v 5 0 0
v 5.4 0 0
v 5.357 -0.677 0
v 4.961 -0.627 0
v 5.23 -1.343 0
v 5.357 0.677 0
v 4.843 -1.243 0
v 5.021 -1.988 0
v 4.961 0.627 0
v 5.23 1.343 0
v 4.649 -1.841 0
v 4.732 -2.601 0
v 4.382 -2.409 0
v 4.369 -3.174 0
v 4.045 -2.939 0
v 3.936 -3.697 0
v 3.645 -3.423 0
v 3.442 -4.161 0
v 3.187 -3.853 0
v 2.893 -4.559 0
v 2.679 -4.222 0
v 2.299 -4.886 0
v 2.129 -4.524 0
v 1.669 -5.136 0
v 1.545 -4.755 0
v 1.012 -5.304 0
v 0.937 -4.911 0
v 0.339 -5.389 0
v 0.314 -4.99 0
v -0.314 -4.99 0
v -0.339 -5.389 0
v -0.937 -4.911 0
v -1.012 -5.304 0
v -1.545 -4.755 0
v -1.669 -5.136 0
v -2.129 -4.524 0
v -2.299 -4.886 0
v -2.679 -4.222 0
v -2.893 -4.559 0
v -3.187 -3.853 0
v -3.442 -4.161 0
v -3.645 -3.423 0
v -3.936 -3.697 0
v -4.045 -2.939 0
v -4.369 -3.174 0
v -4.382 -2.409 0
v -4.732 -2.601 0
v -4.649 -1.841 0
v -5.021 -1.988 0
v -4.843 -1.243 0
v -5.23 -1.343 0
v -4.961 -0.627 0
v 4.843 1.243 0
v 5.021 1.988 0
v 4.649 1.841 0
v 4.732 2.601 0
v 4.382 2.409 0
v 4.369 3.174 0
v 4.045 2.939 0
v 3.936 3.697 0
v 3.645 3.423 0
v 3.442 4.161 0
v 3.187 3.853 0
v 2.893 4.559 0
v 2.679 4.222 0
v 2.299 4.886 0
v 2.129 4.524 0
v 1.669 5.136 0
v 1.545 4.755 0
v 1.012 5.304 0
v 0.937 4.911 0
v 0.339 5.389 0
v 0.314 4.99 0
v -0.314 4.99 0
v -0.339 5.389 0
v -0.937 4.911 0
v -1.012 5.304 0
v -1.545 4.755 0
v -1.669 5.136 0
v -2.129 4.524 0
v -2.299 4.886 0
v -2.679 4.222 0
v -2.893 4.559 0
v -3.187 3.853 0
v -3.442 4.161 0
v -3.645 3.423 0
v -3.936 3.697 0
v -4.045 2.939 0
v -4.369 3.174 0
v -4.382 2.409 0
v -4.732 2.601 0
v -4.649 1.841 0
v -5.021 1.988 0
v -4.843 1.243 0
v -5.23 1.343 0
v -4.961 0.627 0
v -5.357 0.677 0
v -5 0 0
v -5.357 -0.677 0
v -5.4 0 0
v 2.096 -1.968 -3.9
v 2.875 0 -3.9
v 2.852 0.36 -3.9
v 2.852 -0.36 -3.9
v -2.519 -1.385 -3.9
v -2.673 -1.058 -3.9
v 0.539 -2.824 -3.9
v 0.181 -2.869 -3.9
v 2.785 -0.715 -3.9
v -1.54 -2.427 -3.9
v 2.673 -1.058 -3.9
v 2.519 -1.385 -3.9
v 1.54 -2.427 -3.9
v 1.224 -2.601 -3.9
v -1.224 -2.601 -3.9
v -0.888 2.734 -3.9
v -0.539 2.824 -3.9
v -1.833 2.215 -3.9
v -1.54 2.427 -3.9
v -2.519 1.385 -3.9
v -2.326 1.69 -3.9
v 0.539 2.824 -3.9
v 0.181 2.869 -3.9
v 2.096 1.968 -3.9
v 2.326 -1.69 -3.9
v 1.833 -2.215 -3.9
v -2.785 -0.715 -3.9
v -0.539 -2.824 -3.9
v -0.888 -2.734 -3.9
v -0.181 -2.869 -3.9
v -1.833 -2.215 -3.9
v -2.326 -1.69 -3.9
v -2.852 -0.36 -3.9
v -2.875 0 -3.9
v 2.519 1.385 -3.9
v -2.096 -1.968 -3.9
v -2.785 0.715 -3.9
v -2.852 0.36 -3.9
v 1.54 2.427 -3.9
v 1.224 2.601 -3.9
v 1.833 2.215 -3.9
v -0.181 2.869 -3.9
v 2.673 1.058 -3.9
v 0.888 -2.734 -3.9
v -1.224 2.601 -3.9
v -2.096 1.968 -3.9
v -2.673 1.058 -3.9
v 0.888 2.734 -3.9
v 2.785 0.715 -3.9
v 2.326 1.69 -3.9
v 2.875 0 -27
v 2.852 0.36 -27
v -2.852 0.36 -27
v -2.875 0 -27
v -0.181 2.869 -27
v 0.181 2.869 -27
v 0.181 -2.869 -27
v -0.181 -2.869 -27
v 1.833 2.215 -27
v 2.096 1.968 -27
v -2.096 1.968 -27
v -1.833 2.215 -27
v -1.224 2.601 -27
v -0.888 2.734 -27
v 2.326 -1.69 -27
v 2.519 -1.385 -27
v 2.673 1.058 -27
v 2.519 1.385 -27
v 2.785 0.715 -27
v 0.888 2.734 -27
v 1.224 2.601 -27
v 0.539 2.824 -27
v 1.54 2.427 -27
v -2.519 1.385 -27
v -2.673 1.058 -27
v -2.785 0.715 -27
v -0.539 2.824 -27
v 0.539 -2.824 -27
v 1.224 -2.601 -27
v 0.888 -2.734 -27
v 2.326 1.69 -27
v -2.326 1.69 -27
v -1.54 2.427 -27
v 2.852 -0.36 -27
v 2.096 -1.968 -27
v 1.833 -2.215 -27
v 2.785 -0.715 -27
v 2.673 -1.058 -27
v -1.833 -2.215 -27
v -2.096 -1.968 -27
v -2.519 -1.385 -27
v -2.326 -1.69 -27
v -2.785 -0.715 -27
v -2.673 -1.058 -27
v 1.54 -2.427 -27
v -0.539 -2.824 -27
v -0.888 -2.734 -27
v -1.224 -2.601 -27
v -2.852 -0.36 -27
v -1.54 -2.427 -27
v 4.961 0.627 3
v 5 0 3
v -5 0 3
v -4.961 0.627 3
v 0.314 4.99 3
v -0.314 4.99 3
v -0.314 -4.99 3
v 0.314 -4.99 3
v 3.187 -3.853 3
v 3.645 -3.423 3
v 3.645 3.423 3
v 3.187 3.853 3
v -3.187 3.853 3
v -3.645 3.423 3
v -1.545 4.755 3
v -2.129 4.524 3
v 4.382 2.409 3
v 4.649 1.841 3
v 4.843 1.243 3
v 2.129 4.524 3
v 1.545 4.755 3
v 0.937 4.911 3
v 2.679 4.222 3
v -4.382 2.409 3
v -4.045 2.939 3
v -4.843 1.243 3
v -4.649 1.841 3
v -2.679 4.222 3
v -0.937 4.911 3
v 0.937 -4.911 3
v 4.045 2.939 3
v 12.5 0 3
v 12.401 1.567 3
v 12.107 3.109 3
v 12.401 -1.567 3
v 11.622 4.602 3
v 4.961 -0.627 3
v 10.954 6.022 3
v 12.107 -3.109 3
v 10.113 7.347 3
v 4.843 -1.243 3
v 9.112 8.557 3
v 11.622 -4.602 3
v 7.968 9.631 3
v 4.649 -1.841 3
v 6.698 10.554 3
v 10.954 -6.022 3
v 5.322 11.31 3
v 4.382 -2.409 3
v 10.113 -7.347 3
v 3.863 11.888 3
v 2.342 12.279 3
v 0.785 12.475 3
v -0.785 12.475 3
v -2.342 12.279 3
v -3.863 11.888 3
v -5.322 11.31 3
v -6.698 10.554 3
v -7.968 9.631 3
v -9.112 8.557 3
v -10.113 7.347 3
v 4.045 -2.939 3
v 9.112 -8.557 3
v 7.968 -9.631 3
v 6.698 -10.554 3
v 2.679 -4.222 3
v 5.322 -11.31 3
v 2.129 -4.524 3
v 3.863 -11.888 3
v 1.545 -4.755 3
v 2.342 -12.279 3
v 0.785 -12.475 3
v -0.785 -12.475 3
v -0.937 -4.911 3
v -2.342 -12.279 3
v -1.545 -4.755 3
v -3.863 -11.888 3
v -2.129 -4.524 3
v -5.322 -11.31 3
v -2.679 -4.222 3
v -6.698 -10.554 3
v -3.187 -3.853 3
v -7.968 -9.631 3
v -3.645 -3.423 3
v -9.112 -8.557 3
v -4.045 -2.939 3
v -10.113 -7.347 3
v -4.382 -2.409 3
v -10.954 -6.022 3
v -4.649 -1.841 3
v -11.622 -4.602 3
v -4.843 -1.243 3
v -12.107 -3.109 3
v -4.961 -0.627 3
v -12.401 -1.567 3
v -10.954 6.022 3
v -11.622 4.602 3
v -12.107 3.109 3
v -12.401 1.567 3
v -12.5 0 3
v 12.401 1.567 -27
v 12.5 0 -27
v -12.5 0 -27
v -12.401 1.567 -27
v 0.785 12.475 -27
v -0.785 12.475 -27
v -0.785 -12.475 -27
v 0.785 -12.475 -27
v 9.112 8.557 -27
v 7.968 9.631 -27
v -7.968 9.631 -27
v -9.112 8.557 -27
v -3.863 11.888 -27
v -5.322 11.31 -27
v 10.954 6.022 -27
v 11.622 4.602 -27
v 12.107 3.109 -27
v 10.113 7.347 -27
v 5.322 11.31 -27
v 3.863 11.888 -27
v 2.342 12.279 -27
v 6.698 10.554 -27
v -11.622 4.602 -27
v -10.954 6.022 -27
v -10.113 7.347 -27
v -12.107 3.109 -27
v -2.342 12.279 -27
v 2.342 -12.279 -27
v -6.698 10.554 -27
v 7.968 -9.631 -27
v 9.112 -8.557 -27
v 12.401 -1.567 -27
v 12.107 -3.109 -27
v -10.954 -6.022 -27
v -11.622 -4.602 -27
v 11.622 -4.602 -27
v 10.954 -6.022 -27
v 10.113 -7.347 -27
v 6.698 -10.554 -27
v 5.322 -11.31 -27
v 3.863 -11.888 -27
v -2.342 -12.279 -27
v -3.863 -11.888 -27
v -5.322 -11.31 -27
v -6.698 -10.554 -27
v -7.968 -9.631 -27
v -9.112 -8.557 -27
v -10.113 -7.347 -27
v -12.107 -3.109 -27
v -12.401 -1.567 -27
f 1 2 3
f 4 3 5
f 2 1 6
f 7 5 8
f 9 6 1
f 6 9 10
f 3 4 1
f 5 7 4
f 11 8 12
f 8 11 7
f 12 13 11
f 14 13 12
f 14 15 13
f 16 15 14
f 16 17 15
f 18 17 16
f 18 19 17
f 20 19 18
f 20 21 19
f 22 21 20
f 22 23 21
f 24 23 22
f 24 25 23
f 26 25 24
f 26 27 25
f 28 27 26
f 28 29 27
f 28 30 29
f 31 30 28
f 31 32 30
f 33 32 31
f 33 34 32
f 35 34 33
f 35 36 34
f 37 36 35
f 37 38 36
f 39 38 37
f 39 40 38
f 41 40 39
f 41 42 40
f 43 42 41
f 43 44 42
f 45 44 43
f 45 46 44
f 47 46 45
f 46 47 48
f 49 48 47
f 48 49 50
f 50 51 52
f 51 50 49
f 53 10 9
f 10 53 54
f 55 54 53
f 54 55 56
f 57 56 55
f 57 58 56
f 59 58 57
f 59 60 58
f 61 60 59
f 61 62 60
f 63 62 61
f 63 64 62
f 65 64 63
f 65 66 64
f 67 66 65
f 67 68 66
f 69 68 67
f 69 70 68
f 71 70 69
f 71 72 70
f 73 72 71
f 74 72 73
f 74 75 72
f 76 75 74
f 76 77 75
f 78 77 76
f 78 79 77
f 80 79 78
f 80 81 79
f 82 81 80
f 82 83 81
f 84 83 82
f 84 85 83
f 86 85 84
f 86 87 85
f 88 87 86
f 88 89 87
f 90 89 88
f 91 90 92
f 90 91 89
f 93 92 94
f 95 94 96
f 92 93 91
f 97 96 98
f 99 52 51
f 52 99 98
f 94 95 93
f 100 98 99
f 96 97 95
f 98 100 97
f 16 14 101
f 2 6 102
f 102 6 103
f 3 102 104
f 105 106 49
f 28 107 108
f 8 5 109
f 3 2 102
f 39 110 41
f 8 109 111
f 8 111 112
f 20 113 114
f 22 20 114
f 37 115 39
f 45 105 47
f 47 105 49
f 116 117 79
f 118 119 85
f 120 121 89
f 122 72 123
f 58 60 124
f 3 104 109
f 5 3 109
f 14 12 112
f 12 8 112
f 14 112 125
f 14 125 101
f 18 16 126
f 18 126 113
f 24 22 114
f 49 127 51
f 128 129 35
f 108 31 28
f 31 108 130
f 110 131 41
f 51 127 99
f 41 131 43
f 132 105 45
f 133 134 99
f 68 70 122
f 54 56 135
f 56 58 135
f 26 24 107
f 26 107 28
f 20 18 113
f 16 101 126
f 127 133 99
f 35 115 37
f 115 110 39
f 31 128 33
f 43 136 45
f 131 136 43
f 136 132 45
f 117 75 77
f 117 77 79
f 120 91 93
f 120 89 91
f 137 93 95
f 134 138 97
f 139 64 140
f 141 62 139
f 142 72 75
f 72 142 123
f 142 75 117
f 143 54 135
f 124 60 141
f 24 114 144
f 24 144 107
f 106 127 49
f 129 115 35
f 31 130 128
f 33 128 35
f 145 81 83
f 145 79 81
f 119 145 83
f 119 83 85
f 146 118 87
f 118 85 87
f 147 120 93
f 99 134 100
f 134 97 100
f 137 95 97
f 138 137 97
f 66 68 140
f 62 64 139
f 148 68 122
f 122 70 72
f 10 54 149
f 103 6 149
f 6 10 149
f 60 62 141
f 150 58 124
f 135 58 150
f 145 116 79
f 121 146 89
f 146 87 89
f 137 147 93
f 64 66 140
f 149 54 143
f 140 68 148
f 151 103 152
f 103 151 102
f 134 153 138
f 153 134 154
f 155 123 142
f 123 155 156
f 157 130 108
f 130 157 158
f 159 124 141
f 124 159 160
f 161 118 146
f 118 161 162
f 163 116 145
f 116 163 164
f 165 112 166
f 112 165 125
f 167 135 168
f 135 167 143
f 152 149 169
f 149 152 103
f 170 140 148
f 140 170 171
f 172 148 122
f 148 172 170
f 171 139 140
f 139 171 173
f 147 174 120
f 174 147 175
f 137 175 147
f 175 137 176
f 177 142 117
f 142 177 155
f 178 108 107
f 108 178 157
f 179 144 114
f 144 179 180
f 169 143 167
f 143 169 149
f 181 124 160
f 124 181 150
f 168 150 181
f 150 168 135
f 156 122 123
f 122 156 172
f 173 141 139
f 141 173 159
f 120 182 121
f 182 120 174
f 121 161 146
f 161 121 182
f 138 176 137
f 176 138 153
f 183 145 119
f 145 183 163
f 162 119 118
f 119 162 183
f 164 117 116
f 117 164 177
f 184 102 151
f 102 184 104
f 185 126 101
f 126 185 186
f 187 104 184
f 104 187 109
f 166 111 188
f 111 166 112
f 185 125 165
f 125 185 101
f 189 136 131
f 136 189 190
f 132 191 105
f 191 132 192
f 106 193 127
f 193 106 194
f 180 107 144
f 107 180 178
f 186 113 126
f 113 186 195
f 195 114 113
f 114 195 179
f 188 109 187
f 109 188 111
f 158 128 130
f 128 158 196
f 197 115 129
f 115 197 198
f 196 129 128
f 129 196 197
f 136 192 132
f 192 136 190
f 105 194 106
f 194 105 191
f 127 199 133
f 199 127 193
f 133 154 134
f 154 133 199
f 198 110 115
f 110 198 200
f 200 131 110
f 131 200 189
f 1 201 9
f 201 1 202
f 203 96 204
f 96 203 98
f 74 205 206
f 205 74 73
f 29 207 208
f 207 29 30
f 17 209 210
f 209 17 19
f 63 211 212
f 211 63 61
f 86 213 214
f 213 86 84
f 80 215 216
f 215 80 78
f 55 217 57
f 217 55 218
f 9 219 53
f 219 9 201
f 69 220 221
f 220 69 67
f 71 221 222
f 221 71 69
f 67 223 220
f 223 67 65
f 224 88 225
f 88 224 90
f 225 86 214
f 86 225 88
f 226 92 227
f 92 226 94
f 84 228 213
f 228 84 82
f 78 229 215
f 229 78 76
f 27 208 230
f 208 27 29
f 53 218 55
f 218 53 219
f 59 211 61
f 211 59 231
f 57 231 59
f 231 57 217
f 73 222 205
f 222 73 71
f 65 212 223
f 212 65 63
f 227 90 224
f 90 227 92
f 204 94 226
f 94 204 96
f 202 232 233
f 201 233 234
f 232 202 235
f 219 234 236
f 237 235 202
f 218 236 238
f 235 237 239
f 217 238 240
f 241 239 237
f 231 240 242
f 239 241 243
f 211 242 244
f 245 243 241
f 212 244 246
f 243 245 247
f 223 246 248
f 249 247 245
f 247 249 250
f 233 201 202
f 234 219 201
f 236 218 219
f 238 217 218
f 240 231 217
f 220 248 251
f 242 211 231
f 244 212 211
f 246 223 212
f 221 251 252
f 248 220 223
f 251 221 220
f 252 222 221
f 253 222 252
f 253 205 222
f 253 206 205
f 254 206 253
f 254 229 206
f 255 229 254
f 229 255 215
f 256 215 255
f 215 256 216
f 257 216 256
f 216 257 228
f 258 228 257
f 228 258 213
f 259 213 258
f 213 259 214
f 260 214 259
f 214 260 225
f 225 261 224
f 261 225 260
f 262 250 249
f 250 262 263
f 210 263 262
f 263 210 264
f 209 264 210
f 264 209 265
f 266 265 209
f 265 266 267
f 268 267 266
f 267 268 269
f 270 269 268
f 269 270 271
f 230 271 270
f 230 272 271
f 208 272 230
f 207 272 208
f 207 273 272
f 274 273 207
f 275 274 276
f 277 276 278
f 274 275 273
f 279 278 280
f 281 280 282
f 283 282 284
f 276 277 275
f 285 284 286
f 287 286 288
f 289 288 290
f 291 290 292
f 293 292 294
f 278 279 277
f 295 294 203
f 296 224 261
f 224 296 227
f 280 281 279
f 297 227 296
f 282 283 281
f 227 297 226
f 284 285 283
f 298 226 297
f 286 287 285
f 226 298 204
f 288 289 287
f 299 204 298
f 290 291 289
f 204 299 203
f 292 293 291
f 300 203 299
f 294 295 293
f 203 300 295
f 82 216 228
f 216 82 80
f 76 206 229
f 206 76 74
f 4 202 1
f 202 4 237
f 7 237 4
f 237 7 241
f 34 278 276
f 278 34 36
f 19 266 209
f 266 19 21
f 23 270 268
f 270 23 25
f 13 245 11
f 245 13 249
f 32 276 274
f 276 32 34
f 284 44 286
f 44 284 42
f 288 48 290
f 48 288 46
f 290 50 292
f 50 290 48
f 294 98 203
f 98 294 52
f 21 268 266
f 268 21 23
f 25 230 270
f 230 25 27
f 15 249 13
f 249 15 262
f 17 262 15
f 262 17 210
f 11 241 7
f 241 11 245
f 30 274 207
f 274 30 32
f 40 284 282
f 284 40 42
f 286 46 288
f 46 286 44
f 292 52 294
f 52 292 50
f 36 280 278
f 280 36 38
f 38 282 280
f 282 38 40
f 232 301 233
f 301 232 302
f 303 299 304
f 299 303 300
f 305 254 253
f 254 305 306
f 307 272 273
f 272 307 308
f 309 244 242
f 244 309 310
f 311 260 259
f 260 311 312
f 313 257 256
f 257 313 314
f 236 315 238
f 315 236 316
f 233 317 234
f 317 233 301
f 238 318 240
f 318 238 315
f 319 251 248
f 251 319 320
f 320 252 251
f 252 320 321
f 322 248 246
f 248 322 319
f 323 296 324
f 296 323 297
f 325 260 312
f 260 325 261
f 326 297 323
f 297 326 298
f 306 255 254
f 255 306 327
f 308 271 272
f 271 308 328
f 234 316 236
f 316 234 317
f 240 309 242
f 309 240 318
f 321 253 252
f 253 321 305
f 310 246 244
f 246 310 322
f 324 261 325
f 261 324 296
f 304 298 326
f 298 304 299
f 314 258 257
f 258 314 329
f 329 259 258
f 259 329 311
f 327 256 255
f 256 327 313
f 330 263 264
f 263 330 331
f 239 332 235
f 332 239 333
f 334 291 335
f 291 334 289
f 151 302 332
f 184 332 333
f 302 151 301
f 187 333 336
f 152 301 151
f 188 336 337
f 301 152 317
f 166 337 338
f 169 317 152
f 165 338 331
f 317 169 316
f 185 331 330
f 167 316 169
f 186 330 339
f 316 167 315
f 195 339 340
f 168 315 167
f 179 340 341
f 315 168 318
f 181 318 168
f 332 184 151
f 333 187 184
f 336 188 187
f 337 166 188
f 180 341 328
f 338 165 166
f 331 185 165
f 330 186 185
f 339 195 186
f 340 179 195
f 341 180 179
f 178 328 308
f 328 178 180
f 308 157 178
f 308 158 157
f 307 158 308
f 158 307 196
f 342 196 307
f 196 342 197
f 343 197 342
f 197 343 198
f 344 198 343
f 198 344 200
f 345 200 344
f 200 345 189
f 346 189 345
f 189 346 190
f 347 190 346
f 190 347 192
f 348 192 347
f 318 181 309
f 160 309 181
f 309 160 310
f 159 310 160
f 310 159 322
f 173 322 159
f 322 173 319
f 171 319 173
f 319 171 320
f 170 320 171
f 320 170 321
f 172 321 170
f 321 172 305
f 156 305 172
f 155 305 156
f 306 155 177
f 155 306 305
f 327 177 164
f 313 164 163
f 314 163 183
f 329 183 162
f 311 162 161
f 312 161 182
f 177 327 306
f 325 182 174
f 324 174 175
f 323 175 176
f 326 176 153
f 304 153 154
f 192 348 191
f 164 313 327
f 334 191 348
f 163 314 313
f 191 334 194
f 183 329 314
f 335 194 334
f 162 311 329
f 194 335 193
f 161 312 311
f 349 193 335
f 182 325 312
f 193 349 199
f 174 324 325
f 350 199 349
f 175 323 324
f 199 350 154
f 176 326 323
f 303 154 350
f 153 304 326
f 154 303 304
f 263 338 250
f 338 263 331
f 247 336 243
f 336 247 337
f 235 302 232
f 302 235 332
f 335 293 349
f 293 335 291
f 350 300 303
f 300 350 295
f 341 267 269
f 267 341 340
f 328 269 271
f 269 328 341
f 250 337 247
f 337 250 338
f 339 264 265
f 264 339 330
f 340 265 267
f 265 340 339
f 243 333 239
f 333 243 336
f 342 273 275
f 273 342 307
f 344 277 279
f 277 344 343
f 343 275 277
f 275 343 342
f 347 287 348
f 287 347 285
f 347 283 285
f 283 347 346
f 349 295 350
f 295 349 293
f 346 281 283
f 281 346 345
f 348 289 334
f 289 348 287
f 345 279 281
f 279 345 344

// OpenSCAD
$fn = 50;


difference() {
	union() {
		translate(v = [0, 0, -27.0000000000]) {
			cylinder(h = 30, r = 12.5000000000);
		}
	}
	union() {
		translate(v = [0, 0, 0]) {
			rotate(a = [0, 0, 0]) {
				difference() {
					union() {
						translate(v = [0, 0, -30.0000000000]) {
							cylinder(h = 30, r = 2.6000000000);
						}
						translate(v = [0, 0, -3.9000000000]) {
							cylinder(h = 3.9000000000, r1 = 2.8750000000, r2 = 5.4000000000);
						}
						translate(v = [0, 0, -30.0000000000]) {
							cylinder(h = 30, r = 2.8750000000);
						}
						translate(v = [0, 0, -30.0000000000]) {
							cylinder(h = 30, r = 2.6000000000);
						}
					}
					union();
				}
			}
		}
		#cylinder(h = 3, r = 5.0000000000);
	}
}
